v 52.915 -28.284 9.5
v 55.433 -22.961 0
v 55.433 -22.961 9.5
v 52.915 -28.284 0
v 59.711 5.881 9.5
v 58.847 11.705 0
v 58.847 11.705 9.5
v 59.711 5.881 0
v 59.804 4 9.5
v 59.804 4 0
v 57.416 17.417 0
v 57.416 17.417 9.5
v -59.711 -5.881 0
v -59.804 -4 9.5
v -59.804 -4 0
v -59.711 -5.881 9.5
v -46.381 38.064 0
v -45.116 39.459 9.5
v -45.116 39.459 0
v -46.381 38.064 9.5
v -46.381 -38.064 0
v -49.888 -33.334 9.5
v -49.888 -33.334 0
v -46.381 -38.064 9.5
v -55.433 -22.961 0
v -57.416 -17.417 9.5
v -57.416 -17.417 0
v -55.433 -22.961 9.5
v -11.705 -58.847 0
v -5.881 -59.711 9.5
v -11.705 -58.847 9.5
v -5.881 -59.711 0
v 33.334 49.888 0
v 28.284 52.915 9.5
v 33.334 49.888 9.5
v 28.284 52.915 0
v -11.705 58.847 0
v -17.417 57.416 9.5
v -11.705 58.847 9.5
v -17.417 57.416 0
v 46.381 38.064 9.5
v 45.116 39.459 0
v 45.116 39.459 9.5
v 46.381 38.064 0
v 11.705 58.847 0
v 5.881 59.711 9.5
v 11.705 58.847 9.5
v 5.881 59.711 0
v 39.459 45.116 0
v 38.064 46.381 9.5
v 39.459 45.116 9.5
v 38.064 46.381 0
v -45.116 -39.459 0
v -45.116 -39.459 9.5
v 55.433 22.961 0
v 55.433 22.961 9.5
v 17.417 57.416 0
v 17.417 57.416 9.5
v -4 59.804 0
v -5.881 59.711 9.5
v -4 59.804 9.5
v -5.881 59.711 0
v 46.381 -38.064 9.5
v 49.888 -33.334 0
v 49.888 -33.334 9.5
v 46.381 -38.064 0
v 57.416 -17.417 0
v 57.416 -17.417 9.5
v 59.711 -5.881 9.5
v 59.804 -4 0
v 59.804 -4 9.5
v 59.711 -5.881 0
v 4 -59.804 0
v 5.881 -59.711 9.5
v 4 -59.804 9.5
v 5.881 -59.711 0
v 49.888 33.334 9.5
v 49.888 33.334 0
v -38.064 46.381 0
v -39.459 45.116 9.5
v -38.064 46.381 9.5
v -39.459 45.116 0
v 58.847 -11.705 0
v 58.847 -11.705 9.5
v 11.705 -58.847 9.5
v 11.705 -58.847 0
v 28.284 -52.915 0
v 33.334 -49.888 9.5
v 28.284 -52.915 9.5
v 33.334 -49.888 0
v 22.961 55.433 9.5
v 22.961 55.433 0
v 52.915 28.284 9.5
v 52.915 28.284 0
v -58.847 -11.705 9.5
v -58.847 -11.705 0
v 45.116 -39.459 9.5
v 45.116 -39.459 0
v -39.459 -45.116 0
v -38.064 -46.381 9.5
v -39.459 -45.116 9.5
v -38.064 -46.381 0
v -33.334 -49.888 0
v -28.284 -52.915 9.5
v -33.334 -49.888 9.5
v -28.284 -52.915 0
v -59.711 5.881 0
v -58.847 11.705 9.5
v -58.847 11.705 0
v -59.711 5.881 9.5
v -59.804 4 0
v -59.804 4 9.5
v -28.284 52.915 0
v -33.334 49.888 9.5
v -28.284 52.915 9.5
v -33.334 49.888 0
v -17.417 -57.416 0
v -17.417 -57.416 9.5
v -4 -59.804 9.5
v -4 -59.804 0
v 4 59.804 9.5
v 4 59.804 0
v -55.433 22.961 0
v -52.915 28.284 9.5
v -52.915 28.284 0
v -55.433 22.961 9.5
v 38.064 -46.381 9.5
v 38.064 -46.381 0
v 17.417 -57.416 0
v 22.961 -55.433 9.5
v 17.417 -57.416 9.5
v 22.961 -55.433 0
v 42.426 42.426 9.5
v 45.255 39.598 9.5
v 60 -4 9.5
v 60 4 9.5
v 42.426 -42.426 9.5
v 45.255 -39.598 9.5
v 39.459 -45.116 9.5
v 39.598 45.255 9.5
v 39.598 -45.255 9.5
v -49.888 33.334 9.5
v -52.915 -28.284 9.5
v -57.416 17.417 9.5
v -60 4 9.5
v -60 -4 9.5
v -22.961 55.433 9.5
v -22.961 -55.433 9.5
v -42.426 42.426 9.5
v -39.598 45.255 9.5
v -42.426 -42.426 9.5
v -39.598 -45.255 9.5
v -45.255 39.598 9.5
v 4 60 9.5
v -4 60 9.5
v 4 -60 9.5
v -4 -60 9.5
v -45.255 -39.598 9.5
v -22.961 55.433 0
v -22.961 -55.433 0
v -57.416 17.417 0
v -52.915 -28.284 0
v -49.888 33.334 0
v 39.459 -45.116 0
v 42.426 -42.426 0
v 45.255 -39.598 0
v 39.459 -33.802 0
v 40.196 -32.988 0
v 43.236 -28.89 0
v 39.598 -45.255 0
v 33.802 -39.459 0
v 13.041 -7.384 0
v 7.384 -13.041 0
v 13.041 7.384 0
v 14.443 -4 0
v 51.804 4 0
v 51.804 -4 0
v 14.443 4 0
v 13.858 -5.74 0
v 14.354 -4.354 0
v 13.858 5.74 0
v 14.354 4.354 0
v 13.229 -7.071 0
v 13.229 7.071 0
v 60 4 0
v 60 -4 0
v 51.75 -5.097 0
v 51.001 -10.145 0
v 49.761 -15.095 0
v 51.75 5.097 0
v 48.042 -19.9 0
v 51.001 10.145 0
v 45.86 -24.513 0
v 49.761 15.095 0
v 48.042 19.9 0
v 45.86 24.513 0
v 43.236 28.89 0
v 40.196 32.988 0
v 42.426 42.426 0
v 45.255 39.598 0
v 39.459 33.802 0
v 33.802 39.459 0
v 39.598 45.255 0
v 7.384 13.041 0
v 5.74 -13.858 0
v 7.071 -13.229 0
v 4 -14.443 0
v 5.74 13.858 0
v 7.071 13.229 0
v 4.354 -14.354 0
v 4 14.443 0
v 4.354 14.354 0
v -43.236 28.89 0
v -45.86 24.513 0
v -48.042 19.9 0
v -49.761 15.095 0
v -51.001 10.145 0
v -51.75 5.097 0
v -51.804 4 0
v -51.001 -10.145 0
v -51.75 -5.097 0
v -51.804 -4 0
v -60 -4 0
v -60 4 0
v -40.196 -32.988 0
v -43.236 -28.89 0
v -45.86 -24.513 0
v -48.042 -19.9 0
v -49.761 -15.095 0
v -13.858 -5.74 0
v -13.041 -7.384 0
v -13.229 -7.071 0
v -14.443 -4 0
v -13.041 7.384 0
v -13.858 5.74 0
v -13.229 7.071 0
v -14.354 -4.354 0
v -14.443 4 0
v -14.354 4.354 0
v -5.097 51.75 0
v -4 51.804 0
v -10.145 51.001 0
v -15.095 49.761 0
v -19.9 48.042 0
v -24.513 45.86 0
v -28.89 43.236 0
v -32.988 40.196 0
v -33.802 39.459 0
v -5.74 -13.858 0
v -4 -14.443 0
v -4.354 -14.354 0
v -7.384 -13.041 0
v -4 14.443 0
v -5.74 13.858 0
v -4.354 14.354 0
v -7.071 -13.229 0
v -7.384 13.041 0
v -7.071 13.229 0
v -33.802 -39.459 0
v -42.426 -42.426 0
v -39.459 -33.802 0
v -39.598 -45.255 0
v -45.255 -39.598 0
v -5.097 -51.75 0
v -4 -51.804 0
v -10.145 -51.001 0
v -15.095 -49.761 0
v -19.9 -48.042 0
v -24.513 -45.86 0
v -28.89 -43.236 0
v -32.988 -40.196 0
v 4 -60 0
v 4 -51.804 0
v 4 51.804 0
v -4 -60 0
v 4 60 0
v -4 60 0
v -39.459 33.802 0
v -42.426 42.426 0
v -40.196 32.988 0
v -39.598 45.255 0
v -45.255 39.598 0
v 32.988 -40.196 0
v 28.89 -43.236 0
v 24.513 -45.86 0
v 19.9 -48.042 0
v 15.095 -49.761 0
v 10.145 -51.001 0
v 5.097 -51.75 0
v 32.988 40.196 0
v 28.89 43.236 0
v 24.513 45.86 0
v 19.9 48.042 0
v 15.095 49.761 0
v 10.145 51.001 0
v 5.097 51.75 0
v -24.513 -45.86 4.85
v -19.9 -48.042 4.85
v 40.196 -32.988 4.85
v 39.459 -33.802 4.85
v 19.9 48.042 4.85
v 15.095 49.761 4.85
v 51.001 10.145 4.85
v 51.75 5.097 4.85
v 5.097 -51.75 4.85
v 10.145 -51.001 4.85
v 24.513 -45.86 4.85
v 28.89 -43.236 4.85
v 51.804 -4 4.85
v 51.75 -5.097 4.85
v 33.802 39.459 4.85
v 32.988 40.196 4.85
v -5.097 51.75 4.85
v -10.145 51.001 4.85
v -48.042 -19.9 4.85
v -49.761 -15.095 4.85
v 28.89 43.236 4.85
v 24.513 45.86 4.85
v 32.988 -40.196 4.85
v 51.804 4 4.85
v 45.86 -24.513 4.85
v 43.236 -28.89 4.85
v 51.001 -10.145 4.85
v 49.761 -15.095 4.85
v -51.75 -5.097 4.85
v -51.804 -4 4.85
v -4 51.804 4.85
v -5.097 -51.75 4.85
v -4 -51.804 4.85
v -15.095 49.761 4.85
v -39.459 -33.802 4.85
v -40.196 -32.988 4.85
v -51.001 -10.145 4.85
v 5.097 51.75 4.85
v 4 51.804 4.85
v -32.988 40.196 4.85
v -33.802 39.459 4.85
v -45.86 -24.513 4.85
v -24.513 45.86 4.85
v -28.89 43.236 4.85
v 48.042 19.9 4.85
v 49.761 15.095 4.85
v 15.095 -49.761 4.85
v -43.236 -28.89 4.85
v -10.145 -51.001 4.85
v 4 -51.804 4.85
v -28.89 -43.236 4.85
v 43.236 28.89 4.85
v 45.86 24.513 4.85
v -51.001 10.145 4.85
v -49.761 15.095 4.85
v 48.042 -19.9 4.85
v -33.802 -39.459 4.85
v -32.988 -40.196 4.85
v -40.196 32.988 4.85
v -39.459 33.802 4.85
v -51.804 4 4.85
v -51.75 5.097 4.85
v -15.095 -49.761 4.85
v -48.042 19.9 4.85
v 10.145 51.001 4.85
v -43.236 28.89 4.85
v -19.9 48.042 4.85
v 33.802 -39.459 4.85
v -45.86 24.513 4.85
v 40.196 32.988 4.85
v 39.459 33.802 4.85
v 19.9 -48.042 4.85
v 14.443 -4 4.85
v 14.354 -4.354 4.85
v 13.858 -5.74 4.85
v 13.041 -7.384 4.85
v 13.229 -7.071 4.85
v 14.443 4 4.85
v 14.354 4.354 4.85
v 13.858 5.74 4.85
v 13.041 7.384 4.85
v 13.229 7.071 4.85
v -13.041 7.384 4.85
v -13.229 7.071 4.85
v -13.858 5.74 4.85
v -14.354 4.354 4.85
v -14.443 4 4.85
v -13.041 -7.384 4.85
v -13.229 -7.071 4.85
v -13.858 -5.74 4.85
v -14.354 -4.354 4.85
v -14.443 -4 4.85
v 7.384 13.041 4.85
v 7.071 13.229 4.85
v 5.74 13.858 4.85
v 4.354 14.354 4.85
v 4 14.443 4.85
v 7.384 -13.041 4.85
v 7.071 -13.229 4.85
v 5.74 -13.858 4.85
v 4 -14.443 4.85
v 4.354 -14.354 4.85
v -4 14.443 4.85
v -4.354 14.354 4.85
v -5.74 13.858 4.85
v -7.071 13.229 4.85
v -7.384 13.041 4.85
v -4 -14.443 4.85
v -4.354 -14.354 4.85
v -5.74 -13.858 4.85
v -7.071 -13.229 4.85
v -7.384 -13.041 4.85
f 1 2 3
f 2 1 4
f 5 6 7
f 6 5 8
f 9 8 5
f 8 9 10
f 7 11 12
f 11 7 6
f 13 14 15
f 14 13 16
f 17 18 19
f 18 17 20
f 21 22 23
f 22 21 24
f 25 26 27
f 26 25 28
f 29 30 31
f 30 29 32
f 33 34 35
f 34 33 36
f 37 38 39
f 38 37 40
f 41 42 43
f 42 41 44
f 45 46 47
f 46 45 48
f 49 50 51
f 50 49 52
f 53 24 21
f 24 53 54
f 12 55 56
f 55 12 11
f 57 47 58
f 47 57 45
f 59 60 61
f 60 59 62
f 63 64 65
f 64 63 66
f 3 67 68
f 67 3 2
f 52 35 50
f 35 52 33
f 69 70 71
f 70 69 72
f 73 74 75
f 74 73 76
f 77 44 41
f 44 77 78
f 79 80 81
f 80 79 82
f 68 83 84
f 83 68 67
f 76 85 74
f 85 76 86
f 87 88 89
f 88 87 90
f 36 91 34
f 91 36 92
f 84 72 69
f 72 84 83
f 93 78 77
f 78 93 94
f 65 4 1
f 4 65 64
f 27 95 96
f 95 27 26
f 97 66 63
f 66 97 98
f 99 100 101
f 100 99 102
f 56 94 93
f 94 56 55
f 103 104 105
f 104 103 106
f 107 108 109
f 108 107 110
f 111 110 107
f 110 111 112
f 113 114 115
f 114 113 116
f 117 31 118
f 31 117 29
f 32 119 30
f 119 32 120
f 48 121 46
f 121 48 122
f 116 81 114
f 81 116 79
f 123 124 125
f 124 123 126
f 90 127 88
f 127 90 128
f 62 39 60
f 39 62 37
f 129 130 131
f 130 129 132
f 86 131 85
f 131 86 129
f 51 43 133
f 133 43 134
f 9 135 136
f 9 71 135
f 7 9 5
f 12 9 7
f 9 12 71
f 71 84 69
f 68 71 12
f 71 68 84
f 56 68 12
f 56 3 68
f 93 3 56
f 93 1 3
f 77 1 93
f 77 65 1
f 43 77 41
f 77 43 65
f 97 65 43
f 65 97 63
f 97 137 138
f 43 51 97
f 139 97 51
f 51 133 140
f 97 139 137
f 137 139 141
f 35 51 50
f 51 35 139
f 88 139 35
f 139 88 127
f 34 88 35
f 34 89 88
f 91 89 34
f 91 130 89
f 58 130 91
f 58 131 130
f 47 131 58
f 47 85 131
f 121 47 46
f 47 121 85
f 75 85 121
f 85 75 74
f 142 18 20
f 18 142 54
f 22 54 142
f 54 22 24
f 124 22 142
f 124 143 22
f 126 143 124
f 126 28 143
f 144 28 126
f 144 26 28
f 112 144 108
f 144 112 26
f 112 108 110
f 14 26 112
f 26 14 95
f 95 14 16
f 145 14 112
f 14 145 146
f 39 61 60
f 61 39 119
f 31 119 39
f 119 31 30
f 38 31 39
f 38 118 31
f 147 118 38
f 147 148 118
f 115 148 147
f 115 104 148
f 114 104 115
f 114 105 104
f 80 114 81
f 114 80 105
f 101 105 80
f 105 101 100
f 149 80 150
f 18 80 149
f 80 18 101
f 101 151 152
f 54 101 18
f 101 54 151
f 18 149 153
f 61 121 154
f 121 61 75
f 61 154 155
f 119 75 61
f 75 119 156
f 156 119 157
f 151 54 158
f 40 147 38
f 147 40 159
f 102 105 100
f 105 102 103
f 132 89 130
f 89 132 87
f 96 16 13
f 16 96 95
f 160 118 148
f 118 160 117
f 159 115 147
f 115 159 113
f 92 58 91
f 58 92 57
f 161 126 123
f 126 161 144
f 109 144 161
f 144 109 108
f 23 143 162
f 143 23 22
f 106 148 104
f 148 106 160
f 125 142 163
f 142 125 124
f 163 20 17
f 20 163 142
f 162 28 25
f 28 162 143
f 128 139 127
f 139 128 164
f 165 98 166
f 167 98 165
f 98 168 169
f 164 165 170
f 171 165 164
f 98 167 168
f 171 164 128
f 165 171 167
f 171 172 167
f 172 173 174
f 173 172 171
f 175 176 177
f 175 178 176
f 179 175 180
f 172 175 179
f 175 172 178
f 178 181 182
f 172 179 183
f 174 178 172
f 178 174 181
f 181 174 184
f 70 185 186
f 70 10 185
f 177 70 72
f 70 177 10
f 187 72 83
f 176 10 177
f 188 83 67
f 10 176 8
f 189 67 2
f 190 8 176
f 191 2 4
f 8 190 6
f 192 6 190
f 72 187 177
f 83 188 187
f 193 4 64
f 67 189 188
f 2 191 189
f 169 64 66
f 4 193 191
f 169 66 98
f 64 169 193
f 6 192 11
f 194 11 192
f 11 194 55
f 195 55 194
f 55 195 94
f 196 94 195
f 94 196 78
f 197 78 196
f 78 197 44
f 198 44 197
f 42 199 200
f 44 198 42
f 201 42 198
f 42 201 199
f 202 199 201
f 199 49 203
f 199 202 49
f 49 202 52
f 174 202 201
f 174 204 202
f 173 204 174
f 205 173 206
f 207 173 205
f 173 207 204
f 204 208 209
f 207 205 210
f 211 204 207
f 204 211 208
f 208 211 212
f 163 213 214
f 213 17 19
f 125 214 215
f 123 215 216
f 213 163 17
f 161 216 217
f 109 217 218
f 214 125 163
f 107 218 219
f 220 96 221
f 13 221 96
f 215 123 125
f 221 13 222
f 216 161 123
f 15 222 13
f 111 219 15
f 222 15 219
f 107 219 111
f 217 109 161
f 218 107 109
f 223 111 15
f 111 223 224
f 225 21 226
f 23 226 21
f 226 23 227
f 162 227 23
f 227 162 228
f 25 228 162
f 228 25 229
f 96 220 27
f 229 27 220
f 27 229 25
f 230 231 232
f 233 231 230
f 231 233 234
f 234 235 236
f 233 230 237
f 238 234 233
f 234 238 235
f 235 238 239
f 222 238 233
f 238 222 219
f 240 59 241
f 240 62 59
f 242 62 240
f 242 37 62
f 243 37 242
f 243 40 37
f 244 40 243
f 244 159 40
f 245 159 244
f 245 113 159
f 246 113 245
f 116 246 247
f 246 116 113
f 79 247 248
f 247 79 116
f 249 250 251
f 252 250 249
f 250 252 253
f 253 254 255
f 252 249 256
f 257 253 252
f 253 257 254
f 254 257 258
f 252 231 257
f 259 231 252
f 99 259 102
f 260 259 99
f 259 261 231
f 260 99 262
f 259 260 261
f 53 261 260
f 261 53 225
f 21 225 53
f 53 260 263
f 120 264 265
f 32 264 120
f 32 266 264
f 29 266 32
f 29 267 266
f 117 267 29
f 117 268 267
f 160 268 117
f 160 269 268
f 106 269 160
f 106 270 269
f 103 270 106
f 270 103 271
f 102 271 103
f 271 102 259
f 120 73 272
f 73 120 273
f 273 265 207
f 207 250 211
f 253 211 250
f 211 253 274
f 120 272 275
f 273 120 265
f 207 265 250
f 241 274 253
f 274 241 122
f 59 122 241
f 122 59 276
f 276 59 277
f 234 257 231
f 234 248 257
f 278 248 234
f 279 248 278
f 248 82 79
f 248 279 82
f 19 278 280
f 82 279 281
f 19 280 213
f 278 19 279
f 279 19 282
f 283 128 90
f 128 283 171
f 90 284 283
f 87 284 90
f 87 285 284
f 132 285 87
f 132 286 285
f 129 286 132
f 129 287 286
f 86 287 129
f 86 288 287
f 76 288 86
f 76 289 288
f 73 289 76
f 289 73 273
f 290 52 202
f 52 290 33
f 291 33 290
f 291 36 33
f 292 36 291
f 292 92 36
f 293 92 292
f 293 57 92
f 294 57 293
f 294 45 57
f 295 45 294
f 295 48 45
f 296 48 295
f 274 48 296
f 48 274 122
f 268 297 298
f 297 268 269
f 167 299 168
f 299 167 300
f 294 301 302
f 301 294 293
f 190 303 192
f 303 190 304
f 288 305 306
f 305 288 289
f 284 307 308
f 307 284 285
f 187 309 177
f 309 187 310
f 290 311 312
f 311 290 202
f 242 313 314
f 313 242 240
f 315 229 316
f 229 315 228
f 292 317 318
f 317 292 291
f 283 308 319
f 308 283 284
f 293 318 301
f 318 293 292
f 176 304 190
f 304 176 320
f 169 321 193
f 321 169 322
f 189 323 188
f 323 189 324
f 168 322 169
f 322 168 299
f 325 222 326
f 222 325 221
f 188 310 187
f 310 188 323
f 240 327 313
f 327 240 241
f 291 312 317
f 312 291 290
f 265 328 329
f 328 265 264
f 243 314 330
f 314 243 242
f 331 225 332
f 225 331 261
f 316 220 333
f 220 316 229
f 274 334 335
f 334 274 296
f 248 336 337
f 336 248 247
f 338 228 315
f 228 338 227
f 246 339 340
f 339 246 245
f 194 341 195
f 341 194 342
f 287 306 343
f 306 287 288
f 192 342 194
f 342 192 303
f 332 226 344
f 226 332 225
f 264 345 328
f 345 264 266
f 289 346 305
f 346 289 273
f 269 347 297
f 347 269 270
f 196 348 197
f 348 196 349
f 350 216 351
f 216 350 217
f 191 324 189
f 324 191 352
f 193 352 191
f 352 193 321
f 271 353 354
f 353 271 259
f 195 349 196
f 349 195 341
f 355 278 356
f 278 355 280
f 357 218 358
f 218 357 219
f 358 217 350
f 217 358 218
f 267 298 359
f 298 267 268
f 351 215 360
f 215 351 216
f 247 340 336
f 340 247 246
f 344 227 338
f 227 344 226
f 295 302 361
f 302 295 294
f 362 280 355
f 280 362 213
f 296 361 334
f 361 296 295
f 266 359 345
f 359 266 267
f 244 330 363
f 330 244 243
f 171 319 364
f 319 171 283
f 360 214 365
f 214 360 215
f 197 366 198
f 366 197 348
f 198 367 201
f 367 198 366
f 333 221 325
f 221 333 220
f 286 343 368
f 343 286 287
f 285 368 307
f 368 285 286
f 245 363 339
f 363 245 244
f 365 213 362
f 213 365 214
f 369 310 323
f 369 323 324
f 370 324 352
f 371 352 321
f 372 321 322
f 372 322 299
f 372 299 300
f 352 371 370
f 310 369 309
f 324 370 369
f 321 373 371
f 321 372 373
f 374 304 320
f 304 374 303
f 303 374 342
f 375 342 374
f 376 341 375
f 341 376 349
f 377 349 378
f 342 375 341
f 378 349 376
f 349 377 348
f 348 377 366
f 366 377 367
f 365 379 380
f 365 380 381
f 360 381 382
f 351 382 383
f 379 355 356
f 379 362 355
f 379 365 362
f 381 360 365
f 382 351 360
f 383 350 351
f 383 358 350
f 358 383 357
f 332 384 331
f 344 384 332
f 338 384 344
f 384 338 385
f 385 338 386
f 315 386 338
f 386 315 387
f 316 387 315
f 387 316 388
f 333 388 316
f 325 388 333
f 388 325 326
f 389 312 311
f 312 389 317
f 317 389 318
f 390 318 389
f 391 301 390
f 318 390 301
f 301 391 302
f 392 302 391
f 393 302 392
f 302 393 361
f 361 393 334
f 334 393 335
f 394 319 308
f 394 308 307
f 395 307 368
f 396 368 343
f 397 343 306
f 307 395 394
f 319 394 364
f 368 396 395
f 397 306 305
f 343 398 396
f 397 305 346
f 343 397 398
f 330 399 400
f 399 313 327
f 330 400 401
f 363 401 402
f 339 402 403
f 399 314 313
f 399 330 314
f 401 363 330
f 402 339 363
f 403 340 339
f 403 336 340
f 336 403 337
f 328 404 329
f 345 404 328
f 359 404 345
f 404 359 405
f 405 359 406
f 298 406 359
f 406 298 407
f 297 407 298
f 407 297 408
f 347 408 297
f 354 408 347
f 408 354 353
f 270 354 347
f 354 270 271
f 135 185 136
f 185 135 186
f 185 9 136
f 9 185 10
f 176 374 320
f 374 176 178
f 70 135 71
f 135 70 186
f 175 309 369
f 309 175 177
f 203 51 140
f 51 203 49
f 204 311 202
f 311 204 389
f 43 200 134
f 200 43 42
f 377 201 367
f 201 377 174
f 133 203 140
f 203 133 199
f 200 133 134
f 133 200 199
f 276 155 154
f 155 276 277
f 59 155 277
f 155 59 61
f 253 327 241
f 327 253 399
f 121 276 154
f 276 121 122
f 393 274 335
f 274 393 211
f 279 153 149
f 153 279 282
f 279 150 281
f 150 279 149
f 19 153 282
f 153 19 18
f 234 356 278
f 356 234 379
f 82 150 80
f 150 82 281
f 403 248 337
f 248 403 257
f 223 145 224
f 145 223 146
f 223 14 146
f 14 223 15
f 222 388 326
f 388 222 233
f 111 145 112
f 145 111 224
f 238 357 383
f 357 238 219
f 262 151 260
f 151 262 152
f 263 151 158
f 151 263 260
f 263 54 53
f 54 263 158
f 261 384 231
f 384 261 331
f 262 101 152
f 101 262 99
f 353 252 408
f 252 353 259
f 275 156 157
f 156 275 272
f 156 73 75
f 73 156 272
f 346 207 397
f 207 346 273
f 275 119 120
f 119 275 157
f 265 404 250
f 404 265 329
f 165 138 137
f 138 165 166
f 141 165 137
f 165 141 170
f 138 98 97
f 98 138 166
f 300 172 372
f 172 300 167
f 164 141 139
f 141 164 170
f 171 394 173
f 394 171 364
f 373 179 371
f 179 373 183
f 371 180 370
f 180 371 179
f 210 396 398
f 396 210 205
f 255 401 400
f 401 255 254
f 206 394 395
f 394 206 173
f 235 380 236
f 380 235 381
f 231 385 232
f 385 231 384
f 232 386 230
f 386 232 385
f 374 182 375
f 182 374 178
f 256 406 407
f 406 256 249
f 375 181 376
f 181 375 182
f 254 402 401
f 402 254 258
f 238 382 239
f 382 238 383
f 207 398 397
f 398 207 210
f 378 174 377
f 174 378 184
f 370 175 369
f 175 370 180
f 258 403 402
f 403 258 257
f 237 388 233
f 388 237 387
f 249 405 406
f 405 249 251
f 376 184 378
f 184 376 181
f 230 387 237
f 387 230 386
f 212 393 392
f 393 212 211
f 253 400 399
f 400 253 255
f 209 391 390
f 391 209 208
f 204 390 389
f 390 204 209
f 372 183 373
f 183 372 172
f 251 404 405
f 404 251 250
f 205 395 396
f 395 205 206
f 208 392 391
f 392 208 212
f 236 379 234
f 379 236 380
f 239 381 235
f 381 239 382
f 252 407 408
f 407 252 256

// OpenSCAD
/* doodle-meta {"version":1,"parameters":{"outer_diameter":{"label":"Outer Diameter","description":"Diameter of the wheel rim","unit":"mm","feature":"body_width"},"thickness":{"label":"Thickness","description":"Axial thickness of the disc","unit":"mm","feature":"body_height"},"hub_diameter":{"label":"Hub Diameter","description":"Diameter of the central hub","unit":"mm","feature":"hub"},"spoke_width":{"label":"Spoke Width","description":"Width of each radial spoke","unit":"mm","feature":"spokes"},"spoke_count":{"label":"Spoke Count","description":"Number of radial spokes","unit":"count","feature":"spokes"}},"features":{"body_width":{"kind":"dimension","axis":"x","label":"Outer Diameter"},"body_height":{"kind":"dimension","axis":"z","label":"Thickness"},"hub":{"kind":"region","label":"Central Hub","min":[{"parameter":"hub_diameter","scale":-0.5},{"parameter":"hub_diameter","scale":-0.5},0],"max":[{"parameter":"hub_diameter","scale":0.5},{"parameter":"hub_diameter","scale":0.5},{"parameter":"thickness"}]},"spokes":{"kind":"region","label":"Spokes","min":[{"parameter":"outer_diameter","scale":-0.5},{"parameter":"outer_diameter","scale":-0.5},0],"max":[{"parameter":"outer_diameter","scale":0.5},{"parameter":"outer_diameter","scale":0.5},{"parameter":"thickness"}]}}} */

// Parameters
outer_diameter = 120.0;
thickness = 9.5;
hub_diameter = 30.0;
spoke_width = 8.0;
spoke_count = 8;

// Derived constants
$fn = 64;
outer_radius = outer_diameter / 2;
hub_radius = hub_diameter / 2;
rim_thickness = 8.0; // Estimated rim band thickness
inner_rim_radius = outer_radius - rim_thickness;

// Main module
module wheel_disc() {
    difference() {
        // Positive Body: Union of Hub, Rim, and Spokes
        union() {
            // 1. Central Hub
            cylinder(h=thickness, r=hub_radius, center=false);
            
            // 2. Outer Rim
            difference() {
                cylinder(h=thickness, r=outer_radius, center=false);
                cylinder(h=thickness + 0.2, r=inner_rim_radius, center=true);
            }
            
            // 3. Spokes
            for (i = [0 : spoke_count - 1]) {
                rotate([0, 0, i * (360 / spoke_count)]) {
                    // Spoke connects hub to rim
                    // Length extends from center to outer radius to ensure overlap
                    translate([0, -spoke_width/2, 0]) {
                        cube([outer_radius, spoke_width, thickness]);
                    }
                }
            }
        }
        
        // Subtractive Cutters (if any)
        // Currently none required as the structure is defined by the union of positive parts.
        // If a center hole was needed, it would go here.
    }
}

// Instantiate design
wheel_disc();
